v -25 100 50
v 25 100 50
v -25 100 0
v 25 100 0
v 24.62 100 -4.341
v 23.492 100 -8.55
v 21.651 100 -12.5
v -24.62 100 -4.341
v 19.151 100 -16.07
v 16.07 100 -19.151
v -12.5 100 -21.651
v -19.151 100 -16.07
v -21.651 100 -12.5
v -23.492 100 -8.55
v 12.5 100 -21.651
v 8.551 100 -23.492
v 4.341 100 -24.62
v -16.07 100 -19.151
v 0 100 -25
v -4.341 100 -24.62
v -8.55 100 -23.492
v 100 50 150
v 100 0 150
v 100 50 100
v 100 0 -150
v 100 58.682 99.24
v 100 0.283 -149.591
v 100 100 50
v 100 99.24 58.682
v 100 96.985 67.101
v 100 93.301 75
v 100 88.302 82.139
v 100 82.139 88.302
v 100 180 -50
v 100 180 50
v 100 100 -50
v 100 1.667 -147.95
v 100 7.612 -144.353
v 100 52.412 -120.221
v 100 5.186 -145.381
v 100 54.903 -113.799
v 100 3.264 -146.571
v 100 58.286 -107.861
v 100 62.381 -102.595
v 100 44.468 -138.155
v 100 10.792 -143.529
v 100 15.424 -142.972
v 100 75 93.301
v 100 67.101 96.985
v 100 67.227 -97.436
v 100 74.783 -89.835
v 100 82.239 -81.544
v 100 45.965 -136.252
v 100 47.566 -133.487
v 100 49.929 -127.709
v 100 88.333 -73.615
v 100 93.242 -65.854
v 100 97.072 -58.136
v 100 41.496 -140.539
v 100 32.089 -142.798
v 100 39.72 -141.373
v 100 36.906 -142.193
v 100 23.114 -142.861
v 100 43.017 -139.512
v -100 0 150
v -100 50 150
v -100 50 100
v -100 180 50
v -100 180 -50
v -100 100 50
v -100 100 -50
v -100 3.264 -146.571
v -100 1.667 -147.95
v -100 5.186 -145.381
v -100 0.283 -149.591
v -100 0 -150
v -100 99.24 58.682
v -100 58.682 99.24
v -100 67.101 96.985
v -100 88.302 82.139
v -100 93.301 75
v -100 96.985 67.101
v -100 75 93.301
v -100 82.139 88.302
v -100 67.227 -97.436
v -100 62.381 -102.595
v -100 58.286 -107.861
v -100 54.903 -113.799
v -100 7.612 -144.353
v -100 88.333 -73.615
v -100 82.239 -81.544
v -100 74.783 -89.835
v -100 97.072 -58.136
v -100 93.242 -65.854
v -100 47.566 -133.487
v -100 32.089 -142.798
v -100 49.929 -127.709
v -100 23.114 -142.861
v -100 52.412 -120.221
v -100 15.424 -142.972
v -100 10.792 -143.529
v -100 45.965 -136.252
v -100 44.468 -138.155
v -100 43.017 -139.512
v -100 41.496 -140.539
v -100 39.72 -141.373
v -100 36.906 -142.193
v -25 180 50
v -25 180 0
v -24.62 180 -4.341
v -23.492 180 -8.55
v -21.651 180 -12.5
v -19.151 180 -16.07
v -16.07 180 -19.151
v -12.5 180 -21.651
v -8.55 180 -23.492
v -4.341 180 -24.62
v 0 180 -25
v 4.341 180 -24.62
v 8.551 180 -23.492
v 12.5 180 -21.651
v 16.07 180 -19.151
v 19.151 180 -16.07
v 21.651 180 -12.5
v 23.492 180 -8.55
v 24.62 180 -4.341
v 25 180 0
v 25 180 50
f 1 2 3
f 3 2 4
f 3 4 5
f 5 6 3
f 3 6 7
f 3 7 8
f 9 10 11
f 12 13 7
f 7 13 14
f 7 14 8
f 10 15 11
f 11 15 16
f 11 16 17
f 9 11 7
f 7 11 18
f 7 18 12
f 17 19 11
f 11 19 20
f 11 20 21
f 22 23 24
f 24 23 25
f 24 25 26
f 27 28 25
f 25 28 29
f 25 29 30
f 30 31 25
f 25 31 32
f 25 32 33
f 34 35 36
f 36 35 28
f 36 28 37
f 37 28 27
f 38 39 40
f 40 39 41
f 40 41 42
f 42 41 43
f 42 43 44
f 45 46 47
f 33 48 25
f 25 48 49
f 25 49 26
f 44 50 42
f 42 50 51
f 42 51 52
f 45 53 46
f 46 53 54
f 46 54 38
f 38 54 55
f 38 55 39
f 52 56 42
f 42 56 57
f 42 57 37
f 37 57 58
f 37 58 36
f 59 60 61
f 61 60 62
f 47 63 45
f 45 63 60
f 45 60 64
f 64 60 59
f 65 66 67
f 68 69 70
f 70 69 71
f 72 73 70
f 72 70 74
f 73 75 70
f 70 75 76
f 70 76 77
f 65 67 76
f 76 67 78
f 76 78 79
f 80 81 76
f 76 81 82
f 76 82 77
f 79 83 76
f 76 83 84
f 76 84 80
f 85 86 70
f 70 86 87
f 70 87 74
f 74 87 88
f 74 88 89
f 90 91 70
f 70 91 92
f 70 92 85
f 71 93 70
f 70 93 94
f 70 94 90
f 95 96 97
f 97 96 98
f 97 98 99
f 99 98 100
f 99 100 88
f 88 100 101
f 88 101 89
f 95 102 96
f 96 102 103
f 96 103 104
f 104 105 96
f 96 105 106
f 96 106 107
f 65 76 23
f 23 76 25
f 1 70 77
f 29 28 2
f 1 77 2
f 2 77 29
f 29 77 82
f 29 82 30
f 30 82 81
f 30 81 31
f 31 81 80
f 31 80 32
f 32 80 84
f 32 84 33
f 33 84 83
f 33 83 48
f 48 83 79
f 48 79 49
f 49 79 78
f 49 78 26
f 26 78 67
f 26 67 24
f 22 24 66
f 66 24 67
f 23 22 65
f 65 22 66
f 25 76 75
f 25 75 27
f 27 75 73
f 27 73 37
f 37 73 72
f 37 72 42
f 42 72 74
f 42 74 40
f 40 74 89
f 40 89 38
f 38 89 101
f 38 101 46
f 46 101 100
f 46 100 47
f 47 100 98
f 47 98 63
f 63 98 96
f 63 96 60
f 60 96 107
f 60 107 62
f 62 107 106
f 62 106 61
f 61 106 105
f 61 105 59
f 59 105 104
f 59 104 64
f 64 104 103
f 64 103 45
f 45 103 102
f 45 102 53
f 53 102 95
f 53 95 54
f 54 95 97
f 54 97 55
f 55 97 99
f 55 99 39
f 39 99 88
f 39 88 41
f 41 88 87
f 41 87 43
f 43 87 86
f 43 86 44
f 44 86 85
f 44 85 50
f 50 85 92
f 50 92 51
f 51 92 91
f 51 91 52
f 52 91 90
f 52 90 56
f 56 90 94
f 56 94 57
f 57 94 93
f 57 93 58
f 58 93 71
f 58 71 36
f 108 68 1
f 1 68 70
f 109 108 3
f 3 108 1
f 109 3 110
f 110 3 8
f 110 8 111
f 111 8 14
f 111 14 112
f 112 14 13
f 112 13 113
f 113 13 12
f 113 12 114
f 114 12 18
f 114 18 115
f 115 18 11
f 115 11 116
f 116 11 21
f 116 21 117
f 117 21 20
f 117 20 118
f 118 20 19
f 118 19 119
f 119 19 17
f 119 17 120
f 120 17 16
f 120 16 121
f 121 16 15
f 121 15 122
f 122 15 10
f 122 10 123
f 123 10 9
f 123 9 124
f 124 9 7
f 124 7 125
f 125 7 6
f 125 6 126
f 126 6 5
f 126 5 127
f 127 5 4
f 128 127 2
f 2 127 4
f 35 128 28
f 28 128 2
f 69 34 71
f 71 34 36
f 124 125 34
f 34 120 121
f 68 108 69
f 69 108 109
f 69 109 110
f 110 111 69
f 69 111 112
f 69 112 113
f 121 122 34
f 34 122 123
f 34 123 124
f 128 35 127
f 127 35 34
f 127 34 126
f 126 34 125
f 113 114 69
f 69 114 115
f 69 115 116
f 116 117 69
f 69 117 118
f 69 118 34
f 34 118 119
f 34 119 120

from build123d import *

# Parameters (mm, degrees)
SKETCH_1_W      = 200
SKETCH_1_H      = 100
EXTRUDE_1_DEPTH = 100
EXTRUDE_2_DEPTH = 200
EXTRUDE_3_DEPTH = 200
EXTRUDE_5_DEPTH = 80


with BuildPart() as part:
    # 草图1 → 凸台-拉伸1 (new body)
    with BuildSketch(Plane(origin=(0, 0, 0), x_dir=(1, 0, 0), z_dir=(0, 1, 0))):
        Rectangle(SKETCH_1_W, SKETCH_1_H)
    extrude(amount=EXTRUDE_1_DEPTH)

    # 草图2 → 凸台-拉伸2 (add)
    with BuildSketch(Plane.ZY.offset(100)):
        with BuildLine():
            Line((50, 100), (50, 50))
            Line((50, 50), (50, 0))
            Line((50, 0), (150, 0))
            Line((150, 0), (150, 50))
            Line((150, 50), (100, 50))
            ThreePointArc((100, 50), (85.355339059, 85.355339059), (50, 100))
        make_face()
    extrude(amount=-EXTRUDE_2_DEPTH)

    # 草图3 → 凸台-拉伸3 (add)
    with BuildSketch(Plane.ZY.offset(100)):
        with BuildLine():
            Line((-50, 0), (-150, 0))
            add(Edge.make_bspline(
                [(-50, 100), (-66.721438415, 95.122264267), (-87.621848077, 78.445464682), (-111.42761731, 51.798834324), (-153.788531602, 47.400816106), (-137.140673225, 8.568321879), (-150, 0)],
                knots=[0, 0, 0, 0, 0.338265494, 0.517817437, 0.712666981, 1, 1, 1, 1], degree=3))
            Line((-50, 100), (-50, 0))
        make_face()
    extrude(amount=-EXTRUDE_3_DEPTH)

    # 草图4 → 凸台-拉伸5 (add)
    with BuildSketch(Plane(origin=(0, 100, 0), x_dir=(1, 0, 0), z_dir=(0, 1, 0))):
        with BuildLine():
            Line((100, -50), (25, -50))
            Line((25, -50), (25, 0))
            ThreePointArc((25, 0), (0, 25), (-25, 0))
            Line((-25, 0), (-25, -50))
            Line((-25, -50), (-100, -50))
            Line((-100, -50), (-100, 50))
            Line((-100, 50), (100, 50))
            Line((100, 50), (100, -50))
        make_face()
    extrude(amount=EXTRUDE_5_DEPTH)


solid = part.part
